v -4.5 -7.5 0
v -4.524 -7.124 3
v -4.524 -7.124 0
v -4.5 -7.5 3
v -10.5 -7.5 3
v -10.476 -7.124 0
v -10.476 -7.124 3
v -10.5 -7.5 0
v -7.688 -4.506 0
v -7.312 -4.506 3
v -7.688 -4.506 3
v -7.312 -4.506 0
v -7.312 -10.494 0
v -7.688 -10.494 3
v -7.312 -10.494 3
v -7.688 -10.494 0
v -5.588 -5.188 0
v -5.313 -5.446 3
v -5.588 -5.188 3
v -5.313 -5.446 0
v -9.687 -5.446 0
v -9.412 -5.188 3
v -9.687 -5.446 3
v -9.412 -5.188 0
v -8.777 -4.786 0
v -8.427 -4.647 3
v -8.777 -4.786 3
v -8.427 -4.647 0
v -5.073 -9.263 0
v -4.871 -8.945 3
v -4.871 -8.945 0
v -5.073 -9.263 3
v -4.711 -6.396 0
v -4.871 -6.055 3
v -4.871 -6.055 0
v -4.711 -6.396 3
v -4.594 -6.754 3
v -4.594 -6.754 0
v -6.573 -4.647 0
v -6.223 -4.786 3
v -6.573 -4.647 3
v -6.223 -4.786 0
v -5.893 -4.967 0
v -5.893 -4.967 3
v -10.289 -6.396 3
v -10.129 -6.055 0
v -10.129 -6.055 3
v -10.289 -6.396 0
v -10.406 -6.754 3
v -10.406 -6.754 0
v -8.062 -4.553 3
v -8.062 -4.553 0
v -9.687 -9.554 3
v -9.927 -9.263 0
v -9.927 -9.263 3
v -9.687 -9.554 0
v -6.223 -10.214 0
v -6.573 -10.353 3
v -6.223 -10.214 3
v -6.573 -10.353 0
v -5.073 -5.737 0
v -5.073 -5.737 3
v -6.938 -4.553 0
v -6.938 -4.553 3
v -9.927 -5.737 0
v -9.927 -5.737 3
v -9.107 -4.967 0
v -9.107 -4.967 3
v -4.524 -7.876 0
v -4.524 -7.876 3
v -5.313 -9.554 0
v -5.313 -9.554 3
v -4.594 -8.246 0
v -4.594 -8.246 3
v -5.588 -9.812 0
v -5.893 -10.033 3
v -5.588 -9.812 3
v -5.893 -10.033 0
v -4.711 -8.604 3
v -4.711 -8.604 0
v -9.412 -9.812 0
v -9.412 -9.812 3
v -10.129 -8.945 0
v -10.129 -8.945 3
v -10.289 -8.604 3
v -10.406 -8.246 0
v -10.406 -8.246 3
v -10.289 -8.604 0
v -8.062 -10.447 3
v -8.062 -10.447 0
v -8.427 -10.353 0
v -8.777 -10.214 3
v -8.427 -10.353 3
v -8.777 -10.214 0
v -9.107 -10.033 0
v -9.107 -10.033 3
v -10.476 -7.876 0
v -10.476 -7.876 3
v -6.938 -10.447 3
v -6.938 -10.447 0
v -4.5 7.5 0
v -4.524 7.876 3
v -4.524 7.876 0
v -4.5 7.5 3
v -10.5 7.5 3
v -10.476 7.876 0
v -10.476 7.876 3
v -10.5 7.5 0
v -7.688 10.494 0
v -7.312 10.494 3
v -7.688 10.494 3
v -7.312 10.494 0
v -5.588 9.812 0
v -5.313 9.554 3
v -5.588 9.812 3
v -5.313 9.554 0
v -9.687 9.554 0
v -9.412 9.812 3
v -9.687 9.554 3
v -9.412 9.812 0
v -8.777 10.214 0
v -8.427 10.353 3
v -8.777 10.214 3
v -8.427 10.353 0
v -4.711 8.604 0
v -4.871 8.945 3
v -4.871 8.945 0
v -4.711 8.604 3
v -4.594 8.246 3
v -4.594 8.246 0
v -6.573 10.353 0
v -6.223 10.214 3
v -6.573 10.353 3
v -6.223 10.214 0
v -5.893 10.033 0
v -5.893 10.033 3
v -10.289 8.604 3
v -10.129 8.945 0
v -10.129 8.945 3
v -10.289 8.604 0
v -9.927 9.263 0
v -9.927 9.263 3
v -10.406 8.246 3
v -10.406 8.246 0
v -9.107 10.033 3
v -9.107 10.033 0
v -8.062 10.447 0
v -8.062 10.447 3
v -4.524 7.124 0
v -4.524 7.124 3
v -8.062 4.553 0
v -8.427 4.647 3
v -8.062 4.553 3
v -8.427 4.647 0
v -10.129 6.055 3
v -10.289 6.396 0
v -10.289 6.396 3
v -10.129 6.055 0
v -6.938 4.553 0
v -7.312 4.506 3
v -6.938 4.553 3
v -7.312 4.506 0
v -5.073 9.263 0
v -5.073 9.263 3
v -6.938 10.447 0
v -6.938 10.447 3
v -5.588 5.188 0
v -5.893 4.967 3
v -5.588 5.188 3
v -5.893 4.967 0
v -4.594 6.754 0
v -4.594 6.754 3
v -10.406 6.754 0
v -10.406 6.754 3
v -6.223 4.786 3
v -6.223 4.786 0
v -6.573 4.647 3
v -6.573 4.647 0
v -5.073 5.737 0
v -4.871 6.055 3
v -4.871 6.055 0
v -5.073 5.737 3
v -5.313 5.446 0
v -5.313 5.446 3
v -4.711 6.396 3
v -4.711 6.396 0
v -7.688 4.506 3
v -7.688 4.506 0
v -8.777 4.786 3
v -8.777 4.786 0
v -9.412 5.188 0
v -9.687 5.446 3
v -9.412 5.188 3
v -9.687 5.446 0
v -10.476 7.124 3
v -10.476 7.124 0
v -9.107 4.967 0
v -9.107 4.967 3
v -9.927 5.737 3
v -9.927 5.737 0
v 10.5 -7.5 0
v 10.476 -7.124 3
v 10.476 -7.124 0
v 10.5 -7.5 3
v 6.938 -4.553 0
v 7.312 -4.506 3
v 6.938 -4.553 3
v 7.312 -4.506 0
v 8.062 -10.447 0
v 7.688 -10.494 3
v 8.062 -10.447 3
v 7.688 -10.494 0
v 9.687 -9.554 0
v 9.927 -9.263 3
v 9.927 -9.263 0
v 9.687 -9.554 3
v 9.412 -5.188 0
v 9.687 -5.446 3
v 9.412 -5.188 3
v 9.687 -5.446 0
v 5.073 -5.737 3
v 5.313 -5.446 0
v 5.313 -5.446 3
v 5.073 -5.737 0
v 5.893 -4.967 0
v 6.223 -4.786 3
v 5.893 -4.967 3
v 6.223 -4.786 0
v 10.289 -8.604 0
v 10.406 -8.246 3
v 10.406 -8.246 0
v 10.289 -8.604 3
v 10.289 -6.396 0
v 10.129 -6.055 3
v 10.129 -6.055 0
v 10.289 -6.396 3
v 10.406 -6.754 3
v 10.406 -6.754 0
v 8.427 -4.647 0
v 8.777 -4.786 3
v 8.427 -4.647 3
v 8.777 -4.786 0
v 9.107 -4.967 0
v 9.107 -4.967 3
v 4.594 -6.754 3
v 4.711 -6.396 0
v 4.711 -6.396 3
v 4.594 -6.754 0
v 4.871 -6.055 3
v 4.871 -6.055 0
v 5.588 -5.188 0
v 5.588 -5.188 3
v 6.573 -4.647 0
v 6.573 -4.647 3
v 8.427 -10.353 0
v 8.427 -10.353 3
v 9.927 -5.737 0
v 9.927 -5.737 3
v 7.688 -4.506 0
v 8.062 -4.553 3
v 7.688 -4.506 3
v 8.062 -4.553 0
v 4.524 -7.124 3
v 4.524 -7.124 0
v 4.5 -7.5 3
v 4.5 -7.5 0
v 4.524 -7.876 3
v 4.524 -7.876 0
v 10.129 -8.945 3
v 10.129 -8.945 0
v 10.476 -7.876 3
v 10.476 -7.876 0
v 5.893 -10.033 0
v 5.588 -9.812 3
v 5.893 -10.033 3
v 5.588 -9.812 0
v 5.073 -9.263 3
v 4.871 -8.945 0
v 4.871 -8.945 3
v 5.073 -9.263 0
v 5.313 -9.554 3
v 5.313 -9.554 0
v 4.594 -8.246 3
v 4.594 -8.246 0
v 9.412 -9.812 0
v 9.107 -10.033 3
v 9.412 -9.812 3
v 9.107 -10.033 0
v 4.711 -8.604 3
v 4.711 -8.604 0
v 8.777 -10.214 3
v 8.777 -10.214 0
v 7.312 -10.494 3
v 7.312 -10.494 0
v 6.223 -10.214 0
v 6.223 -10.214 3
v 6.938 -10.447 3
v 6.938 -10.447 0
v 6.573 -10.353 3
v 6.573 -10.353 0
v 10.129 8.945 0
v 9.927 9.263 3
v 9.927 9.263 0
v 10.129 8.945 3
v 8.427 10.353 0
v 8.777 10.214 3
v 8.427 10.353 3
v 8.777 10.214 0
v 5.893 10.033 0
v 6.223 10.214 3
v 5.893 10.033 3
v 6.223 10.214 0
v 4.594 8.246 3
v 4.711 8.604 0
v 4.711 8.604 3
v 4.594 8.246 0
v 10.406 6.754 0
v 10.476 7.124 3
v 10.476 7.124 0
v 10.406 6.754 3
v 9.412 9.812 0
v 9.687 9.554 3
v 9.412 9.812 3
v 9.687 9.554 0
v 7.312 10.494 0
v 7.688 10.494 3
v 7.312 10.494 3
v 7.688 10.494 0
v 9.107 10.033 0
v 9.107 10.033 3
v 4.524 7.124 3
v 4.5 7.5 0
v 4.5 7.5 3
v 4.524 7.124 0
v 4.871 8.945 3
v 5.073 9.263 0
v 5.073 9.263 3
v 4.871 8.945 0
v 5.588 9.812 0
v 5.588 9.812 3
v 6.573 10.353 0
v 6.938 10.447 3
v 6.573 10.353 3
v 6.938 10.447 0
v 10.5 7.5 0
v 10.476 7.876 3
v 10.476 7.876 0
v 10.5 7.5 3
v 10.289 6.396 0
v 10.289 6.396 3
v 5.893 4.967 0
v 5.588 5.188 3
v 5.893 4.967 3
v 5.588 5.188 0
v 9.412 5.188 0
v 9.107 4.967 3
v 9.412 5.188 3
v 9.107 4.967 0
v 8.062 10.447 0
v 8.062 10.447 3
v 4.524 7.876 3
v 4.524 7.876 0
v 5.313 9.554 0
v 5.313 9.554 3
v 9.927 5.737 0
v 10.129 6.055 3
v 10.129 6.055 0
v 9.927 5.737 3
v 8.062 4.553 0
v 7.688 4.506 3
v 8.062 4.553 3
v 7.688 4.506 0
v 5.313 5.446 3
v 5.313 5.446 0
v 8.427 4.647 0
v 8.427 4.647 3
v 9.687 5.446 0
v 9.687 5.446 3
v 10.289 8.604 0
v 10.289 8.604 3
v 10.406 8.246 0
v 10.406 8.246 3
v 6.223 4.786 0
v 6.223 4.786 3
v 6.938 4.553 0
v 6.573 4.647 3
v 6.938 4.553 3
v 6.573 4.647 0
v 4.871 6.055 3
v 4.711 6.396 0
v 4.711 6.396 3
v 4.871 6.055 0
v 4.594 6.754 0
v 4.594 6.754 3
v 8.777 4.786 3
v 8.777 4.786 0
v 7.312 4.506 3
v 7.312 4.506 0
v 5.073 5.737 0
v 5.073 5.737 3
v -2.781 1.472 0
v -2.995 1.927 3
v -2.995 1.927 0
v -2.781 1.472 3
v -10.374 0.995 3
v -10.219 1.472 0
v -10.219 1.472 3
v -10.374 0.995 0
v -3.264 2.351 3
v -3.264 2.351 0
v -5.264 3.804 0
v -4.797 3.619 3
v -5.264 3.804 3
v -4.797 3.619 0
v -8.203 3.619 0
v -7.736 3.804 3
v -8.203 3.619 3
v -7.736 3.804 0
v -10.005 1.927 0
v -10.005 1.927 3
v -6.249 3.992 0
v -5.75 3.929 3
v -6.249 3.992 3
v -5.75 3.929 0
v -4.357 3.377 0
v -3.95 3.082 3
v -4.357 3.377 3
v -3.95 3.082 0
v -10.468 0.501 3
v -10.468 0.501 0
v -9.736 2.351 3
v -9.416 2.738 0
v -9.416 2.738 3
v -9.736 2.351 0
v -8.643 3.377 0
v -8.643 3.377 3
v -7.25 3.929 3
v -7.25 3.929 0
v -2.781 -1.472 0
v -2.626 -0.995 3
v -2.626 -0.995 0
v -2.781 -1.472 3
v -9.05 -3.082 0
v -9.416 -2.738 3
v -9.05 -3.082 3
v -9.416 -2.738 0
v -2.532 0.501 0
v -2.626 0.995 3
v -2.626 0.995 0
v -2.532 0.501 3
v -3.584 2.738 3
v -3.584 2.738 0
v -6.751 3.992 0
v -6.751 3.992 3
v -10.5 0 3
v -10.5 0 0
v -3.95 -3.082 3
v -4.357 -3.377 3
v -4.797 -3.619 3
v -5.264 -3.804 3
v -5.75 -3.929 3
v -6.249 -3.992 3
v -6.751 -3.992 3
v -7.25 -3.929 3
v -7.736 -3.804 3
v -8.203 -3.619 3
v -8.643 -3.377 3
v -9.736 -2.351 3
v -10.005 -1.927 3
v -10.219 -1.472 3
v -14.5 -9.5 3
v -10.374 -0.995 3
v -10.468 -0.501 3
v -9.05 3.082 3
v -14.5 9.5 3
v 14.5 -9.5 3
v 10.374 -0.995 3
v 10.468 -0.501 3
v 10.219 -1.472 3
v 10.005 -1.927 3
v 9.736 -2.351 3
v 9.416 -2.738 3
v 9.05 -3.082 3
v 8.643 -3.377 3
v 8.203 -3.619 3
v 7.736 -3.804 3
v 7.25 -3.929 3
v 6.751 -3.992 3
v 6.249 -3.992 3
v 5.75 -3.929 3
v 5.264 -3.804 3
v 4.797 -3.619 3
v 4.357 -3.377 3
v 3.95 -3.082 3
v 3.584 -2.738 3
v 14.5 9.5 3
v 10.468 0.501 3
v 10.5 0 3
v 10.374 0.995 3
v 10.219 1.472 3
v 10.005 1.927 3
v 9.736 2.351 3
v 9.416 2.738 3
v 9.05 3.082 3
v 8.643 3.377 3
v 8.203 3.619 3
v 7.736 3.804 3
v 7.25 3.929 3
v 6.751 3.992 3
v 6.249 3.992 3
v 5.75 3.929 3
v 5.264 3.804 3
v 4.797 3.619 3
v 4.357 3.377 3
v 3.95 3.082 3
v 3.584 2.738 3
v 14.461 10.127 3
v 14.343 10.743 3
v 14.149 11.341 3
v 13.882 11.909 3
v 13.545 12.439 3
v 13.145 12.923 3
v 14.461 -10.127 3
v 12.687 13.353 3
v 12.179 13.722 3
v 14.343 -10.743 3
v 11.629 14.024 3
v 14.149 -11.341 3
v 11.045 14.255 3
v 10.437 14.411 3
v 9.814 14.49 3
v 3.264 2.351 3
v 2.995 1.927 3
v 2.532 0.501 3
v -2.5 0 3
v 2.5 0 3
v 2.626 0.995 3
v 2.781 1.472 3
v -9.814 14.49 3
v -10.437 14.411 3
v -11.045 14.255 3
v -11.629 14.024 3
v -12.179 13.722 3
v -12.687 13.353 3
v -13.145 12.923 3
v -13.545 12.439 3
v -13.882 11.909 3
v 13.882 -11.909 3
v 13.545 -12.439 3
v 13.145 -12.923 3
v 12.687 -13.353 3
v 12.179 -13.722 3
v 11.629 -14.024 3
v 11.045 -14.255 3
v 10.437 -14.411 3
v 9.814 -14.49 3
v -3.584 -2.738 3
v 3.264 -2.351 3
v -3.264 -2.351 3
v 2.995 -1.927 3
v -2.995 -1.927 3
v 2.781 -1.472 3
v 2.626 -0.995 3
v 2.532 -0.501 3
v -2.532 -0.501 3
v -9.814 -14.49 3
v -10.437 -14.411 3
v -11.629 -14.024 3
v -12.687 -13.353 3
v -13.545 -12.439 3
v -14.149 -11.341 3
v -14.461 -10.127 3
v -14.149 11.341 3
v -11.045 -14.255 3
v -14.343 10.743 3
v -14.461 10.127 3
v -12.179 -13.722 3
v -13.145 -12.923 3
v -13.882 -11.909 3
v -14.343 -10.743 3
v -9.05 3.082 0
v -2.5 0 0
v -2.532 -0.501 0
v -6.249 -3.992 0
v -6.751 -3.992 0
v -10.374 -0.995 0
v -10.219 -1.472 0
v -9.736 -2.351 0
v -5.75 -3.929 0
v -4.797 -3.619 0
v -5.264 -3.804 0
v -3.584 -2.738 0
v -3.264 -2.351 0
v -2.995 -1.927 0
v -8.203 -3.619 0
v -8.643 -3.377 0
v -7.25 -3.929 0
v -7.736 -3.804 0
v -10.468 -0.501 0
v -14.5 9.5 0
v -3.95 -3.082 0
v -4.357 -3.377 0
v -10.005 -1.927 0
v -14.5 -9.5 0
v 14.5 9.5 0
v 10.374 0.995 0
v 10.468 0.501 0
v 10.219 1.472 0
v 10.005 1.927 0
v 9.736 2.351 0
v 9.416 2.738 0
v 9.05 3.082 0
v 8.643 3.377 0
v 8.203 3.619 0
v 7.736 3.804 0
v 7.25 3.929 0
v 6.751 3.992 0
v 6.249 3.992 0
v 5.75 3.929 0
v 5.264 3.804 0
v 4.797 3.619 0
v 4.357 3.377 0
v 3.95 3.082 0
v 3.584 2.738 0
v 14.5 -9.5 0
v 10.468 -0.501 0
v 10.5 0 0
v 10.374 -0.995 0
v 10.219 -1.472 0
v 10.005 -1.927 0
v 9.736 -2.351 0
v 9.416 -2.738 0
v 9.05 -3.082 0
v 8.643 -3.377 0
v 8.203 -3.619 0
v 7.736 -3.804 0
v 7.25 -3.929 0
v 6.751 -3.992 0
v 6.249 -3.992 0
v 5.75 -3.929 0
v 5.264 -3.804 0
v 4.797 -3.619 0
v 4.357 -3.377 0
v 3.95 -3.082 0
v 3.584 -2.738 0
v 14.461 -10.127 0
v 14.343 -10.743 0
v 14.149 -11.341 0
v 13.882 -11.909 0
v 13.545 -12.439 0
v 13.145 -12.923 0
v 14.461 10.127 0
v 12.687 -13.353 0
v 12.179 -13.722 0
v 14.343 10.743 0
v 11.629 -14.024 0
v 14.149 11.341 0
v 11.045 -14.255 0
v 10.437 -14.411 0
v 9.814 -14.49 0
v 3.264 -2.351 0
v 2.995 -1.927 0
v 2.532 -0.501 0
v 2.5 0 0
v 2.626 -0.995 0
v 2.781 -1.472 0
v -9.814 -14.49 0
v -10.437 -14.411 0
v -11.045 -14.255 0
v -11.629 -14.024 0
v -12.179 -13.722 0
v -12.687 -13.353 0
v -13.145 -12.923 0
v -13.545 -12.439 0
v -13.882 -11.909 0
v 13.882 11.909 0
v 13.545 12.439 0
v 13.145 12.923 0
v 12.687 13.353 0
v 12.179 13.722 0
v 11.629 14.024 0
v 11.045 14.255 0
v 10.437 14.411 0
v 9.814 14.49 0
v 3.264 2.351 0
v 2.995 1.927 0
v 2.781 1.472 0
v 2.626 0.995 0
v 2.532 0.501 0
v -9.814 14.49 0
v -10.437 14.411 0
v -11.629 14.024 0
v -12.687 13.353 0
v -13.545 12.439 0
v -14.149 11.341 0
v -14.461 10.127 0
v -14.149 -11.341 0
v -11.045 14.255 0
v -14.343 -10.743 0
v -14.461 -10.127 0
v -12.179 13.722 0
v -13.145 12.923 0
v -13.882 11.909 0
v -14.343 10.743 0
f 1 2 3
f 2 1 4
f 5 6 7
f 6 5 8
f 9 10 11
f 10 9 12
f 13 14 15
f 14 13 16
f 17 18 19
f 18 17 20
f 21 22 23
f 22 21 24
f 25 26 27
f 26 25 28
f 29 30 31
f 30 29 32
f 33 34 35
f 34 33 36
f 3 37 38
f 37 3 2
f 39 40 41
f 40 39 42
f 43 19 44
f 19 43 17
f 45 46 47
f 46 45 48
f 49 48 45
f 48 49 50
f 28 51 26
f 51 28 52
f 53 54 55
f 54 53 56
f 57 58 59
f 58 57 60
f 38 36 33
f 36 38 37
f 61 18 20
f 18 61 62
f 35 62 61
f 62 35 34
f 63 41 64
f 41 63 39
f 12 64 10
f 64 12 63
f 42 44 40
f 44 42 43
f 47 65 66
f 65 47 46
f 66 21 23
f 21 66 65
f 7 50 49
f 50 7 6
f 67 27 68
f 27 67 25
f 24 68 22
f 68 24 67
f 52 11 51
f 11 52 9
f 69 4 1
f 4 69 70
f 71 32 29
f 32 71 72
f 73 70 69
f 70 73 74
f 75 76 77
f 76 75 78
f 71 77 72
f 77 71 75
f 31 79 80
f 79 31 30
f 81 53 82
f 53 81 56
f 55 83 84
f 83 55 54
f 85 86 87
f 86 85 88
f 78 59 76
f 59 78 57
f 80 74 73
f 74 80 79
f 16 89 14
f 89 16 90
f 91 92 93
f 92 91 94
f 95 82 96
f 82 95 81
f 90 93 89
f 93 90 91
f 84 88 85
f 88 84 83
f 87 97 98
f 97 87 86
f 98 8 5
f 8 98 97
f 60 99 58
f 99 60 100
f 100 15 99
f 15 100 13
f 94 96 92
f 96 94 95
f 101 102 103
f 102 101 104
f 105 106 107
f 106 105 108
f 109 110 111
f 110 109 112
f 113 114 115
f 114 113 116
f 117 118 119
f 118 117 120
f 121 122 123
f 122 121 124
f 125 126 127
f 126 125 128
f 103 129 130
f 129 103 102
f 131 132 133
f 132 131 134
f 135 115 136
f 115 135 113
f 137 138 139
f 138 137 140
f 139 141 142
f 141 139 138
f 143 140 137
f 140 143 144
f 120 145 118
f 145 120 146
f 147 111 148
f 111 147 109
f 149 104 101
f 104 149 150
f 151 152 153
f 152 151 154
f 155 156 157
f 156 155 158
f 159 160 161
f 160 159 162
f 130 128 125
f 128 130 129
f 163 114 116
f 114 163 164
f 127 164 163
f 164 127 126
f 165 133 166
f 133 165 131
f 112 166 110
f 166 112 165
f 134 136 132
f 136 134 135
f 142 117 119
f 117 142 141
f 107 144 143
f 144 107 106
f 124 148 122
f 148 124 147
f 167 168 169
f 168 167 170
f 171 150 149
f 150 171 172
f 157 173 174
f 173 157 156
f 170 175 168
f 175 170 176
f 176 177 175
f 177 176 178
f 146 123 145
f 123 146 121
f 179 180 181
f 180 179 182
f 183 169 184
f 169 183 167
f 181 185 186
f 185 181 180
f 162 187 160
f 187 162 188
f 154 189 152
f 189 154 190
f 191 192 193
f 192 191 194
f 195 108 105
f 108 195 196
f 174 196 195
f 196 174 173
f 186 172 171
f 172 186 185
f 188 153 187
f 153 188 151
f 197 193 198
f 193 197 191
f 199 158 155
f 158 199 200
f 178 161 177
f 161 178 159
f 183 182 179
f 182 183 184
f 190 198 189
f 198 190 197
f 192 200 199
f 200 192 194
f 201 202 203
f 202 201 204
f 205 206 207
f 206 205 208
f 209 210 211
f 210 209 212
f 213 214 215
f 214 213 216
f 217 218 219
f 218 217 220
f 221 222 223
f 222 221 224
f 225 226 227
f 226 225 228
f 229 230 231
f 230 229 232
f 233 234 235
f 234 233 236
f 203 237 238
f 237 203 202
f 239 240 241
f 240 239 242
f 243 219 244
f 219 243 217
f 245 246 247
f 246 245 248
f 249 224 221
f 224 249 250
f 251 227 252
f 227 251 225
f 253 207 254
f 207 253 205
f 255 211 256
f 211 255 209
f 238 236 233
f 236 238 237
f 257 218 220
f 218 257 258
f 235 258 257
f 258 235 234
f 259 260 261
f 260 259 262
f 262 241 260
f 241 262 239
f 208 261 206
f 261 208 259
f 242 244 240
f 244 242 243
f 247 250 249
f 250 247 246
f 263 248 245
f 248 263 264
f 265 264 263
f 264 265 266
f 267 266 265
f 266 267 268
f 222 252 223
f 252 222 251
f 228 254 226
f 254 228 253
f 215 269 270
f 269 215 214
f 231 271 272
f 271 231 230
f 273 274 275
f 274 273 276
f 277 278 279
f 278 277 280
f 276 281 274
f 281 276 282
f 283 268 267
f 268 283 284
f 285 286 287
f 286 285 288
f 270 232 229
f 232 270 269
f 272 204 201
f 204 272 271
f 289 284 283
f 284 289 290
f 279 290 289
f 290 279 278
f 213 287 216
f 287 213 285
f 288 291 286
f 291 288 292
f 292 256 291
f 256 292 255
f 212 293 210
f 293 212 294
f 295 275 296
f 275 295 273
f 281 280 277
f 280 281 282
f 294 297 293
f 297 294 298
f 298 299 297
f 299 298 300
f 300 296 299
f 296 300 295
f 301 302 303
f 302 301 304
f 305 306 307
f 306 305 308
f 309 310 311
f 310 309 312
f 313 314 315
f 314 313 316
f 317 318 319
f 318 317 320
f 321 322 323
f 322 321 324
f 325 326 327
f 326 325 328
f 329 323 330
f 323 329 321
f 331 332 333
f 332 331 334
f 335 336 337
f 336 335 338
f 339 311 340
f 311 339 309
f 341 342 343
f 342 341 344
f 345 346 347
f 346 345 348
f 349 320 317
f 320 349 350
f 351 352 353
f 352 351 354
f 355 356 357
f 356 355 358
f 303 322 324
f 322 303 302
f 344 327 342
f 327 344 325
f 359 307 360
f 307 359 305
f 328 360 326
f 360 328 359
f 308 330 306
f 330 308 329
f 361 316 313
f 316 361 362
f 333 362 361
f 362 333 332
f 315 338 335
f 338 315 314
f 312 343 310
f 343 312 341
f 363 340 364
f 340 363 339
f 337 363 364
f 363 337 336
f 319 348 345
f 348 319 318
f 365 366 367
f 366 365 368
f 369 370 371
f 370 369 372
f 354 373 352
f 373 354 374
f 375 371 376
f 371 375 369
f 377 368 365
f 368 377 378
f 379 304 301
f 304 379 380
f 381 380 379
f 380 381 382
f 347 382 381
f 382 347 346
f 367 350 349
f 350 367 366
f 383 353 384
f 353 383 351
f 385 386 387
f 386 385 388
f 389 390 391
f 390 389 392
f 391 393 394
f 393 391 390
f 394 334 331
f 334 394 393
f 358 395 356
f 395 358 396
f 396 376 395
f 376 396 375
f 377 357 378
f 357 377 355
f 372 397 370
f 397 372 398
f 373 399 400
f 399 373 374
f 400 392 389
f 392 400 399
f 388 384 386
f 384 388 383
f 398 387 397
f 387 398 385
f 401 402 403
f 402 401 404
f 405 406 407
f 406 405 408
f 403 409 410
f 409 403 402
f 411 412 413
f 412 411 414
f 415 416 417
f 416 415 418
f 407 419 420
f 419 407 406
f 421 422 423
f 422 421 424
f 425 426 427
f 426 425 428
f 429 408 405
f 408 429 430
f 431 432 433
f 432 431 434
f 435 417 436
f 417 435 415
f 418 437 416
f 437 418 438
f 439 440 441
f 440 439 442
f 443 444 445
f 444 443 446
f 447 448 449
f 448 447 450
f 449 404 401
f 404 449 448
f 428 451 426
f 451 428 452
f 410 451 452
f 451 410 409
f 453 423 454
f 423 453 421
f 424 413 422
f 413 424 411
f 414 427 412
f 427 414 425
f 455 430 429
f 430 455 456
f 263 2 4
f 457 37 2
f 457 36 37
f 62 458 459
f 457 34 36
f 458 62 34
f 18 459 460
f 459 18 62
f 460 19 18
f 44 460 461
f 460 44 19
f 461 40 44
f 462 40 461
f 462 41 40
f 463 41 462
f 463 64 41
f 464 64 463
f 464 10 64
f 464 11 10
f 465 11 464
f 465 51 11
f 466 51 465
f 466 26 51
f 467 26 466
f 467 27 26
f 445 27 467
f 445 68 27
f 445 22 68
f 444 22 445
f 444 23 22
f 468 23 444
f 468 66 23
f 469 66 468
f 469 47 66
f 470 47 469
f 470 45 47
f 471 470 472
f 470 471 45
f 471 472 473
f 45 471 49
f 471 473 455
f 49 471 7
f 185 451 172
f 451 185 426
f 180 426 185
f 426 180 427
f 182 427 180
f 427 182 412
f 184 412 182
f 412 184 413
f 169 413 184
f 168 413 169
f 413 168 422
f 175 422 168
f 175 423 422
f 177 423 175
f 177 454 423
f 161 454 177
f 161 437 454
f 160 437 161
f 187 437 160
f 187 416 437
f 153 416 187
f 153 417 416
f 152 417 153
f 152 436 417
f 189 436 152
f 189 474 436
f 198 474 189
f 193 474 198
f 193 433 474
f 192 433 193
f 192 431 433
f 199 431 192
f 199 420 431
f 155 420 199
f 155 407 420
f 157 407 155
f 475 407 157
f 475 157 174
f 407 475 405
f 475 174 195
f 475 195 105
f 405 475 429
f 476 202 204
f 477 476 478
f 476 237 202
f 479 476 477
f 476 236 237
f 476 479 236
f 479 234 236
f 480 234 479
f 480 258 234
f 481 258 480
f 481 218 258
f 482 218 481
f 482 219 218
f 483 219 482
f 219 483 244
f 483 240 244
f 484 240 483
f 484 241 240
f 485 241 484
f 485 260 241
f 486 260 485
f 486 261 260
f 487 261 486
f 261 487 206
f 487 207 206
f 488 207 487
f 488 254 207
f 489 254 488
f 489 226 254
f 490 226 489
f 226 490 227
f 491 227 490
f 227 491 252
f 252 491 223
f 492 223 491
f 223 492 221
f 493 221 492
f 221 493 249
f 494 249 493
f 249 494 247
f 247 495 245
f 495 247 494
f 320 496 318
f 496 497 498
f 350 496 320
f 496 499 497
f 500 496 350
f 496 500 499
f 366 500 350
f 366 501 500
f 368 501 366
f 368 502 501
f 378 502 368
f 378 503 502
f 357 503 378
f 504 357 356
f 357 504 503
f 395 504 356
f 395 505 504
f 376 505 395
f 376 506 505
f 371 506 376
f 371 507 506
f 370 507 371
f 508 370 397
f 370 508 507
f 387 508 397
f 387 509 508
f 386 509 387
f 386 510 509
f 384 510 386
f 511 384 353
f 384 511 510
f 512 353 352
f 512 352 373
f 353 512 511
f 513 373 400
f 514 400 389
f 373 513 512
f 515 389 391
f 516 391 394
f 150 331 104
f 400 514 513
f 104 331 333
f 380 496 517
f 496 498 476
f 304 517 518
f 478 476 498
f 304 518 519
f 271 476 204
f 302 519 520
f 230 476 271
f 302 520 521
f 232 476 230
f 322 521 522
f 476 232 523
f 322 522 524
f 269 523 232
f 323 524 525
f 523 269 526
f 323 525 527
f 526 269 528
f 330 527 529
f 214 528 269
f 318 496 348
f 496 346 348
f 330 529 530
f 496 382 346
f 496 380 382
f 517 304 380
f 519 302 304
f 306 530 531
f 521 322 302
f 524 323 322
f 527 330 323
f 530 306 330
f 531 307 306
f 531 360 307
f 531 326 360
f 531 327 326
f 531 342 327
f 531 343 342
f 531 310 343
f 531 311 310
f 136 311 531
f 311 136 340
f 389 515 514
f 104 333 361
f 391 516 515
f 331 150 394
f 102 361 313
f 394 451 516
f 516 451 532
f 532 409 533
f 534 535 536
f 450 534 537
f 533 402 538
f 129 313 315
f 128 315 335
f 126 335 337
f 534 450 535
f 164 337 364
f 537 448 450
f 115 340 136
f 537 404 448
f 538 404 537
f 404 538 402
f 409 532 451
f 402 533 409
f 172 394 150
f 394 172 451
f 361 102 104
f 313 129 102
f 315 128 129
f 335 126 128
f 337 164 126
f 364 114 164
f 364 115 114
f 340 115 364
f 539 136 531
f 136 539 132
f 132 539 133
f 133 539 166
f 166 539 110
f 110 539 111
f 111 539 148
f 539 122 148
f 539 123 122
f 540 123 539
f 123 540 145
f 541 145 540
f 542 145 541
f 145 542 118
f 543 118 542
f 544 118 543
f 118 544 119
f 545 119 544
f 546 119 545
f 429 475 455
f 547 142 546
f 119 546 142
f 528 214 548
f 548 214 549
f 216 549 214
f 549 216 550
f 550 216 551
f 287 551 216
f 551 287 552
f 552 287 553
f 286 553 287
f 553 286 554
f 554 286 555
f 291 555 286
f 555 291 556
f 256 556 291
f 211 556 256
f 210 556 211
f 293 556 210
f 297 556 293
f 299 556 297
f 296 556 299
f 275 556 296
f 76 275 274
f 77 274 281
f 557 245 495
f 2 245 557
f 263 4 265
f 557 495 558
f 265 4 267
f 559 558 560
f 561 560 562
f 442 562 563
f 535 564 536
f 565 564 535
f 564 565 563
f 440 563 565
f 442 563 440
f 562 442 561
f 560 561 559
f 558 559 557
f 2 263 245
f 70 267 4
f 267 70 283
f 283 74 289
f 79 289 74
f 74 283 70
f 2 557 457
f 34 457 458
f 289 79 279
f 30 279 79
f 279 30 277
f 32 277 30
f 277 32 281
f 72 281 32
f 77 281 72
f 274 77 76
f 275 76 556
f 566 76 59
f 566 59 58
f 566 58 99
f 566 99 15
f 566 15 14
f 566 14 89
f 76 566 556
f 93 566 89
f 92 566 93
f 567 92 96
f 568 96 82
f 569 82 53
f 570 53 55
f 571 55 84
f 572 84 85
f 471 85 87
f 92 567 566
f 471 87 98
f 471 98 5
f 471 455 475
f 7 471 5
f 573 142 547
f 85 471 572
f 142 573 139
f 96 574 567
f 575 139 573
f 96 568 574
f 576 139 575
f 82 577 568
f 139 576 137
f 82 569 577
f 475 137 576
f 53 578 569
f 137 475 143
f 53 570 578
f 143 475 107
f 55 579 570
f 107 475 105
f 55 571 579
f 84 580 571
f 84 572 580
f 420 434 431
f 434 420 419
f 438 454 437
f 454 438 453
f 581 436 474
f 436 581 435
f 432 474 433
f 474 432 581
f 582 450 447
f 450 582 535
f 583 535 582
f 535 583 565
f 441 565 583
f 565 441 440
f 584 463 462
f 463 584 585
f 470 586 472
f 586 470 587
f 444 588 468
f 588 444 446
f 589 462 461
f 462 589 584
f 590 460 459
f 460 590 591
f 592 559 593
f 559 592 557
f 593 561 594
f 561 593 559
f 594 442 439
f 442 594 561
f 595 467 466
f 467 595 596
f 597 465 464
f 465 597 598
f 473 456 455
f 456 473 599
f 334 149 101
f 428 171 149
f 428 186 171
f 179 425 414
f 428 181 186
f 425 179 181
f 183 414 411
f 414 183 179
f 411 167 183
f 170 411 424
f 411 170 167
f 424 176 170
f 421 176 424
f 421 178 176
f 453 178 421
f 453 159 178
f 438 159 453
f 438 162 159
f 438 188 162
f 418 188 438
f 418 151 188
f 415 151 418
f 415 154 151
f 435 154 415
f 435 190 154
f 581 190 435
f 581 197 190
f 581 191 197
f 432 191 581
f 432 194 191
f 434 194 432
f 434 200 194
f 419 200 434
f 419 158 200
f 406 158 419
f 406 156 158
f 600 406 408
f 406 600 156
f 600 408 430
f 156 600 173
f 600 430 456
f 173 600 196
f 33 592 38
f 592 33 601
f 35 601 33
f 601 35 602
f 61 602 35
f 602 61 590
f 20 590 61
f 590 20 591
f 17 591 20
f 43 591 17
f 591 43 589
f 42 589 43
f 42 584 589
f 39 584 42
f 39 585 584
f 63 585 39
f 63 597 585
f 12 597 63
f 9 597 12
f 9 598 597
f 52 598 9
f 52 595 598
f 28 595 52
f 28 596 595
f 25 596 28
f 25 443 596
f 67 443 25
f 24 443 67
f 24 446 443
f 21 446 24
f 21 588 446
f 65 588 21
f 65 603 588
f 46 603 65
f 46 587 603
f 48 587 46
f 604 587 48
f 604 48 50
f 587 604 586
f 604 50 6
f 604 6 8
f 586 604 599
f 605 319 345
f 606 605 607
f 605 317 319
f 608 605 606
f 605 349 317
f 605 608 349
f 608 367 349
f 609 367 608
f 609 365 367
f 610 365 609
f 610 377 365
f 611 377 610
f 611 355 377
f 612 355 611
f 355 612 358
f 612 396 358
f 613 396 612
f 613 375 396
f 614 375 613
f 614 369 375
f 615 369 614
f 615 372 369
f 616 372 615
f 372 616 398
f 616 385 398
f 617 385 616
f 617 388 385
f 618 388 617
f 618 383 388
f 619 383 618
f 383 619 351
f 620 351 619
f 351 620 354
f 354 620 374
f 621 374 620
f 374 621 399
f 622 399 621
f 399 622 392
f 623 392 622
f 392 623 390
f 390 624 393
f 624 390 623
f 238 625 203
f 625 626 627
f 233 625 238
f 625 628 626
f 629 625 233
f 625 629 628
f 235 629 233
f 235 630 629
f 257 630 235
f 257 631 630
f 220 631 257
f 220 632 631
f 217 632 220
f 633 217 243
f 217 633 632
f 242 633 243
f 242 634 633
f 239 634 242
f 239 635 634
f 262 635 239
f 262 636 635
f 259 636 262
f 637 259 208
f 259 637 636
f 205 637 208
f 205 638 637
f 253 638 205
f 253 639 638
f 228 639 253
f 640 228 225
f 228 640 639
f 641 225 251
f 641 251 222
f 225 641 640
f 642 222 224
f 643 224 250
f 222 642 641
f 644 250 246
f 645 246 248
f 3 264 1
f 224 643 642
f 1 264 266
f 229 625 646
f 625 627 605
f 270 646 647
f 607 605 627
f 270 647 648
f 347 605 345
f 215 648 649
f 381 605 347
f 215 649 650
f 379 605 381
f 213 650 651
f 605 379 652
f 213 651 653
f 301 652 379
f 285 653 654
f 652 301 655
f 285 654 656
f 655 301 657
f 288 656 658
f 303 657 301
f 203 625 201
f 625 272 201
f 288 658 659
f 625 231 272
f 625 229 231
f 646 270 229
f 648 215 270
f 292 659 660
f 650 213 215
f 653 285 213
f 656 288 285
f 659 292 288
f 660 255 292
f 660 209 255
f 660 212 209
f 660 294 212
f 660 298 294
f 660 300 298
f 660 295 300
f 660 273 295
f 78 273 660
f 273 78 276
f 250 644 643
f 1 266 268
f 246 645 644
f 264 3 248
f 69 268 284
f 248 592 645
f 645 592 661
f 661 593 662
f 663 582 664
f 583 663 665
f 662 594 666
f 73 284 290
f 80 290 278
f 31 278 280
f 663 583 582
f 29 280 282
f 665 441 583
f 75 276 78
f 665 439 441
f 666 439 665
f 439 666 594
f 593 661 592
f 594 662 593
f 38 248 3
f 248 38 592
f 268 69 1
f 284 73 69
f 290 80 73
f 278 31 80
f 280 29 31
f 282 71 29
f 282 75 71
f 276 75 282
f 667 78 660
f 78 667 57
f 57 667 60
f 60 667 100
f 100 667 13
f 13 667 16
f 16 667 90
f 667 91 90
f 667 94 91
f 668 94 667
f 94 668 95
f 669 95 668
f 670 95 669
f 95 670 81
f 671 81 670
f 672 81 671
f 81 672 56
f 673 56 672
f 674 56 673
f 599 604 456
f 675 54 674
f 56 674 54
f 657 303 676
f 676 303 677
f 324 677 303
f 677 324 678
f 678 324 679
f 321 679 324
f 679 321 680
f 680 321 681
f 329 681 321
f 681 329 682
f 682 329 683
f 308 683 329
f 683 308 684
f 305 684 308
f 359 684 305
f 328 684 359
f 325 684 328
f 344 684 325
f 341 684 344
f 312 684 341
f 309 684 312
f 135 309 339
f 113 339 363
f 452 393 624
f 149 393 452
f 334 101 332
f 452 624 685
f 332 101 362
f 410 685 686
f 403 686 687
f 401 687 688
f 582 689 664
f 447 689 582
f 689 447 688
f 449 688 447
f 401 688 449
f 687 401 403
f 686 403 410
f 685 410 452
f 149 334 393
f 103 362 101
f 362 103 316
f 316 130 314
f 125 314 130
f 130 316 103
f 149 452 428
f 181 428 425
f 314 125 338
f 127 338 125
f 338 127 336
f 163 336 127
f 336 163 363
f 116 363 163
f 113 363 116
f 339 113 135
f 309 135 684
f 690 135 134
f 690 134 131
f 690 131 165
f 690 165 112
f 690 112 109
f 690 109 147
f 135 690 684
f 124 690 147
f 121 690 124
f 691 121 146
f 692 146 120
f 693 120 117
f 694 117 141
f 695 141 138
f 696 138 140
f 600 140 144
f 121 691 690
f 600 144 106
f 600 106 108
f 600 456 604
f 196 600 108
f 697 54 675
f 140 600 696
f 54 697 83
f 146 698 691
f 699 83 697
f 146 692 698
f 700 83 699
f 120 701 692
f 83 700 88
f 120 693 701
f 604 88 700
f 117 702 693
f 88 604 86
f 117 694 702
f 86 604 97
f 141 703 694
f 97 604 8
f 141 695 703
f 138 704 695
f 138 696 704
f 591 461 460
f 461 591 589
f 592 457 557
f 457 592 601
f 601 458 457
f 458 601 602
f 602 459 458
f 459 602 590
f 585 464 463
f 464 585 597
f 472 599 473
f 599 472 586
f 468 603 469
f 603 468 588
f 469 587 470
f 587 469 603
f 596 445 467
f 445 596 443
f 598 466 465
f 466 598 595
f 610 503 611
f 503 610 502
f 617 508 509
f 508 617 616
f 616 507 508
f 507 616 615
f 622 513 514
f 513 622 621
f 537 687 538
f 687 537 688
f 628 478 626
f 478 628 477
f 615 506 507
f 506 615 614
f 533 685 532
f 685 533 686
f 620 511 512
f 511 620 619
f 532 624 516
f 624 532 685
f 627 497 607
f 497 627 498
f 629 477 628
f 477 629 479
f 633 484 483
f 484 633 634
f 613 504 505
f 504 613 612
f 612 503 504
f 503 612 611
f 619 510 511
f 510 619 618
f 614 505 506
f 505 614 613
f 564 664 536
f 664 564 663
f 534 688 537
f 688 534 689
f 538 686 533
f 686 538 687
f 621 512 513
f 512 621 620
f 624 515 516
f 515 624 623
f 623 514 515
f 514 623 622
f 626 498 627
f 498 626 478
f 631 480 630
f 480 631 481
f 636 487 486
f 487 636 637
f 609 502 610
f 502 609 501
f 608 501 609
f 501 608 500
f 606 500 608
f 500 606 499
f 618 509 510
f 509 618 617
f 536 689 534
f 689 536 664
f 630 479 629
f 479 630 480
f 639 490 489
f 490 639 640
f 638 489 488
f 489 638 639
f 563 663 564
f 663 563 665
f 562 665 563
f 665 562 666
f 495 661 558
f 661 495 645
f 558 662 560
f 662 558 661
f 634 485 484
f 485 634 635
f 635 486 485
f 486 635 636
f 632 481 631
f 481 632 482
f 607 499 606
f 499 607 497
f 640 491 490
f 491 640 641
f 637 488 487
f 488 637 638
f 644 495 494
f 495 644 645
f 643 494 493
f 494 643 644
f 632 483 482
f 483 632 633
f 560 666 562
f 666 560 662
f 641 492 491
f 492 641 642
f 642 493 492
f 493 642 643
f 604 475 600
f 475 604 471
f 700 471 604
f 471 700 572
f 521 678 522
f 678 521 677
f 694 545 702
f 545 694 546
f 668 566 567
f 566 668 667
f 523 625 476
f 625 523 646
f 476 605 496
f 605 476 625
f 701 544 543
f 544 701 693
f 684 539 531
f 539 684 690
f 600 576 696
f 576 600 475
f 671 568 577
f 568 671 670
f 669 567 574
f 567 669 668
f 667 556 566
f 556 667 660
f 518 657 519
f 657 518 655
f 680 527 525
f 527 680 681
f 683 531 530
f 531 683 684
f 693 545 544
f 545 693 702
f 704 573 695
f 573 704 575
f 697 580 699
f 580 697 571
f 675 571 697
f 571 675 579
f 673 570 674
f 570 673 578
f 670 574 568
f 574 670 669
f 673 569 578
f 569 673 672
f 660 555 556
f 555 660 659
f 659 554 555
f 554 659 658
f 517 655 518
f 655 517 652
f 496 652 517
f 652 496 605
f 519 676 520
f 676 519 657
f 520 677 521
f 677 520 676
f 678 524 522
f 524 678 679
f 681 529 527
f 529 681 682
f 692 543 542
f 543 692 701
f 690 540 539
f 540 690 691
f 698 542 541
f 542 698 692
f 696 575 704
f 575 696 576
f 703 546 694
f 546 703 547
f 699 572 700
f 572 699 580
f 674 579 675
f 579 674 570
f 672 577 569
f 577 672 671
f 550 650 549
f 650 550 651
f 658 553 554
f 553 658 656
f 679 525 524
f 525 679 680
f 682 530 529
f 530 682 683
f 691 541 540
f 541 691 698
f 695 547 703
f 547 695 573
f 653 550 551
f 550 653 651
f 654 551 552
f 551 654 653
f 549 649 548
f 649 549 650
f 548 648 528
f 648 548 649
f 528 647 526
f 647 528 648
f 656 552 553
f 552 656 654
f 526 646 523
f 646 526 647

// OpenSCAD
$fn = 50;


difference() {
	union() {
		hull() {
			translate(v = [-9.5000000000, 9.5000000000, 0]) {
				cylinder(h = 3, r = 5);
			}
			translate(v = [9.5000000000, 9.5000000000, 0]) {
				cylinder(h = 3, r = 5);
			}
			translate(v = [-9.5000000000, -9.5000000000, 0]) {
				cylinder(h = 3, r = 5);
			}
			translate(v = [9.5000000000, -9.5000000000, 0]) {
				cylinder(h = 3, r = 5);
			}
		}
	}
	union() {
		#translate(v = [-7.5000000000, -7.5000000000, -100.0000000000]) {
			cylinder(h = 200, r = 3.0000000000);
		}
		#translate(v = [-7.5000000000, 7.5000000000, -100.0000000000]) {
			cylinder(h = 200, r = 3.0000000000);
		}
		#translate(v = [7.5000000000, -7.5000000000, -100.0000000000]) {
			cylinder(h = 200, r = 3.0000000000);
		}
		#translate(v = [7.5000000000, 7.5000000000, -100.0000000000]) {
			cylinder(h = 200, r = 3.0000000000);
		}
		#translate(v = [-6.5000000000, 0, 0]) {
			cylinder(h = 3, r = 4.0000000000);
		}
		#translate(v = [6.5000000000, 0, 0]) {
			cylinder(h = 3, r = 4.0000000000);
		}
	}
}
